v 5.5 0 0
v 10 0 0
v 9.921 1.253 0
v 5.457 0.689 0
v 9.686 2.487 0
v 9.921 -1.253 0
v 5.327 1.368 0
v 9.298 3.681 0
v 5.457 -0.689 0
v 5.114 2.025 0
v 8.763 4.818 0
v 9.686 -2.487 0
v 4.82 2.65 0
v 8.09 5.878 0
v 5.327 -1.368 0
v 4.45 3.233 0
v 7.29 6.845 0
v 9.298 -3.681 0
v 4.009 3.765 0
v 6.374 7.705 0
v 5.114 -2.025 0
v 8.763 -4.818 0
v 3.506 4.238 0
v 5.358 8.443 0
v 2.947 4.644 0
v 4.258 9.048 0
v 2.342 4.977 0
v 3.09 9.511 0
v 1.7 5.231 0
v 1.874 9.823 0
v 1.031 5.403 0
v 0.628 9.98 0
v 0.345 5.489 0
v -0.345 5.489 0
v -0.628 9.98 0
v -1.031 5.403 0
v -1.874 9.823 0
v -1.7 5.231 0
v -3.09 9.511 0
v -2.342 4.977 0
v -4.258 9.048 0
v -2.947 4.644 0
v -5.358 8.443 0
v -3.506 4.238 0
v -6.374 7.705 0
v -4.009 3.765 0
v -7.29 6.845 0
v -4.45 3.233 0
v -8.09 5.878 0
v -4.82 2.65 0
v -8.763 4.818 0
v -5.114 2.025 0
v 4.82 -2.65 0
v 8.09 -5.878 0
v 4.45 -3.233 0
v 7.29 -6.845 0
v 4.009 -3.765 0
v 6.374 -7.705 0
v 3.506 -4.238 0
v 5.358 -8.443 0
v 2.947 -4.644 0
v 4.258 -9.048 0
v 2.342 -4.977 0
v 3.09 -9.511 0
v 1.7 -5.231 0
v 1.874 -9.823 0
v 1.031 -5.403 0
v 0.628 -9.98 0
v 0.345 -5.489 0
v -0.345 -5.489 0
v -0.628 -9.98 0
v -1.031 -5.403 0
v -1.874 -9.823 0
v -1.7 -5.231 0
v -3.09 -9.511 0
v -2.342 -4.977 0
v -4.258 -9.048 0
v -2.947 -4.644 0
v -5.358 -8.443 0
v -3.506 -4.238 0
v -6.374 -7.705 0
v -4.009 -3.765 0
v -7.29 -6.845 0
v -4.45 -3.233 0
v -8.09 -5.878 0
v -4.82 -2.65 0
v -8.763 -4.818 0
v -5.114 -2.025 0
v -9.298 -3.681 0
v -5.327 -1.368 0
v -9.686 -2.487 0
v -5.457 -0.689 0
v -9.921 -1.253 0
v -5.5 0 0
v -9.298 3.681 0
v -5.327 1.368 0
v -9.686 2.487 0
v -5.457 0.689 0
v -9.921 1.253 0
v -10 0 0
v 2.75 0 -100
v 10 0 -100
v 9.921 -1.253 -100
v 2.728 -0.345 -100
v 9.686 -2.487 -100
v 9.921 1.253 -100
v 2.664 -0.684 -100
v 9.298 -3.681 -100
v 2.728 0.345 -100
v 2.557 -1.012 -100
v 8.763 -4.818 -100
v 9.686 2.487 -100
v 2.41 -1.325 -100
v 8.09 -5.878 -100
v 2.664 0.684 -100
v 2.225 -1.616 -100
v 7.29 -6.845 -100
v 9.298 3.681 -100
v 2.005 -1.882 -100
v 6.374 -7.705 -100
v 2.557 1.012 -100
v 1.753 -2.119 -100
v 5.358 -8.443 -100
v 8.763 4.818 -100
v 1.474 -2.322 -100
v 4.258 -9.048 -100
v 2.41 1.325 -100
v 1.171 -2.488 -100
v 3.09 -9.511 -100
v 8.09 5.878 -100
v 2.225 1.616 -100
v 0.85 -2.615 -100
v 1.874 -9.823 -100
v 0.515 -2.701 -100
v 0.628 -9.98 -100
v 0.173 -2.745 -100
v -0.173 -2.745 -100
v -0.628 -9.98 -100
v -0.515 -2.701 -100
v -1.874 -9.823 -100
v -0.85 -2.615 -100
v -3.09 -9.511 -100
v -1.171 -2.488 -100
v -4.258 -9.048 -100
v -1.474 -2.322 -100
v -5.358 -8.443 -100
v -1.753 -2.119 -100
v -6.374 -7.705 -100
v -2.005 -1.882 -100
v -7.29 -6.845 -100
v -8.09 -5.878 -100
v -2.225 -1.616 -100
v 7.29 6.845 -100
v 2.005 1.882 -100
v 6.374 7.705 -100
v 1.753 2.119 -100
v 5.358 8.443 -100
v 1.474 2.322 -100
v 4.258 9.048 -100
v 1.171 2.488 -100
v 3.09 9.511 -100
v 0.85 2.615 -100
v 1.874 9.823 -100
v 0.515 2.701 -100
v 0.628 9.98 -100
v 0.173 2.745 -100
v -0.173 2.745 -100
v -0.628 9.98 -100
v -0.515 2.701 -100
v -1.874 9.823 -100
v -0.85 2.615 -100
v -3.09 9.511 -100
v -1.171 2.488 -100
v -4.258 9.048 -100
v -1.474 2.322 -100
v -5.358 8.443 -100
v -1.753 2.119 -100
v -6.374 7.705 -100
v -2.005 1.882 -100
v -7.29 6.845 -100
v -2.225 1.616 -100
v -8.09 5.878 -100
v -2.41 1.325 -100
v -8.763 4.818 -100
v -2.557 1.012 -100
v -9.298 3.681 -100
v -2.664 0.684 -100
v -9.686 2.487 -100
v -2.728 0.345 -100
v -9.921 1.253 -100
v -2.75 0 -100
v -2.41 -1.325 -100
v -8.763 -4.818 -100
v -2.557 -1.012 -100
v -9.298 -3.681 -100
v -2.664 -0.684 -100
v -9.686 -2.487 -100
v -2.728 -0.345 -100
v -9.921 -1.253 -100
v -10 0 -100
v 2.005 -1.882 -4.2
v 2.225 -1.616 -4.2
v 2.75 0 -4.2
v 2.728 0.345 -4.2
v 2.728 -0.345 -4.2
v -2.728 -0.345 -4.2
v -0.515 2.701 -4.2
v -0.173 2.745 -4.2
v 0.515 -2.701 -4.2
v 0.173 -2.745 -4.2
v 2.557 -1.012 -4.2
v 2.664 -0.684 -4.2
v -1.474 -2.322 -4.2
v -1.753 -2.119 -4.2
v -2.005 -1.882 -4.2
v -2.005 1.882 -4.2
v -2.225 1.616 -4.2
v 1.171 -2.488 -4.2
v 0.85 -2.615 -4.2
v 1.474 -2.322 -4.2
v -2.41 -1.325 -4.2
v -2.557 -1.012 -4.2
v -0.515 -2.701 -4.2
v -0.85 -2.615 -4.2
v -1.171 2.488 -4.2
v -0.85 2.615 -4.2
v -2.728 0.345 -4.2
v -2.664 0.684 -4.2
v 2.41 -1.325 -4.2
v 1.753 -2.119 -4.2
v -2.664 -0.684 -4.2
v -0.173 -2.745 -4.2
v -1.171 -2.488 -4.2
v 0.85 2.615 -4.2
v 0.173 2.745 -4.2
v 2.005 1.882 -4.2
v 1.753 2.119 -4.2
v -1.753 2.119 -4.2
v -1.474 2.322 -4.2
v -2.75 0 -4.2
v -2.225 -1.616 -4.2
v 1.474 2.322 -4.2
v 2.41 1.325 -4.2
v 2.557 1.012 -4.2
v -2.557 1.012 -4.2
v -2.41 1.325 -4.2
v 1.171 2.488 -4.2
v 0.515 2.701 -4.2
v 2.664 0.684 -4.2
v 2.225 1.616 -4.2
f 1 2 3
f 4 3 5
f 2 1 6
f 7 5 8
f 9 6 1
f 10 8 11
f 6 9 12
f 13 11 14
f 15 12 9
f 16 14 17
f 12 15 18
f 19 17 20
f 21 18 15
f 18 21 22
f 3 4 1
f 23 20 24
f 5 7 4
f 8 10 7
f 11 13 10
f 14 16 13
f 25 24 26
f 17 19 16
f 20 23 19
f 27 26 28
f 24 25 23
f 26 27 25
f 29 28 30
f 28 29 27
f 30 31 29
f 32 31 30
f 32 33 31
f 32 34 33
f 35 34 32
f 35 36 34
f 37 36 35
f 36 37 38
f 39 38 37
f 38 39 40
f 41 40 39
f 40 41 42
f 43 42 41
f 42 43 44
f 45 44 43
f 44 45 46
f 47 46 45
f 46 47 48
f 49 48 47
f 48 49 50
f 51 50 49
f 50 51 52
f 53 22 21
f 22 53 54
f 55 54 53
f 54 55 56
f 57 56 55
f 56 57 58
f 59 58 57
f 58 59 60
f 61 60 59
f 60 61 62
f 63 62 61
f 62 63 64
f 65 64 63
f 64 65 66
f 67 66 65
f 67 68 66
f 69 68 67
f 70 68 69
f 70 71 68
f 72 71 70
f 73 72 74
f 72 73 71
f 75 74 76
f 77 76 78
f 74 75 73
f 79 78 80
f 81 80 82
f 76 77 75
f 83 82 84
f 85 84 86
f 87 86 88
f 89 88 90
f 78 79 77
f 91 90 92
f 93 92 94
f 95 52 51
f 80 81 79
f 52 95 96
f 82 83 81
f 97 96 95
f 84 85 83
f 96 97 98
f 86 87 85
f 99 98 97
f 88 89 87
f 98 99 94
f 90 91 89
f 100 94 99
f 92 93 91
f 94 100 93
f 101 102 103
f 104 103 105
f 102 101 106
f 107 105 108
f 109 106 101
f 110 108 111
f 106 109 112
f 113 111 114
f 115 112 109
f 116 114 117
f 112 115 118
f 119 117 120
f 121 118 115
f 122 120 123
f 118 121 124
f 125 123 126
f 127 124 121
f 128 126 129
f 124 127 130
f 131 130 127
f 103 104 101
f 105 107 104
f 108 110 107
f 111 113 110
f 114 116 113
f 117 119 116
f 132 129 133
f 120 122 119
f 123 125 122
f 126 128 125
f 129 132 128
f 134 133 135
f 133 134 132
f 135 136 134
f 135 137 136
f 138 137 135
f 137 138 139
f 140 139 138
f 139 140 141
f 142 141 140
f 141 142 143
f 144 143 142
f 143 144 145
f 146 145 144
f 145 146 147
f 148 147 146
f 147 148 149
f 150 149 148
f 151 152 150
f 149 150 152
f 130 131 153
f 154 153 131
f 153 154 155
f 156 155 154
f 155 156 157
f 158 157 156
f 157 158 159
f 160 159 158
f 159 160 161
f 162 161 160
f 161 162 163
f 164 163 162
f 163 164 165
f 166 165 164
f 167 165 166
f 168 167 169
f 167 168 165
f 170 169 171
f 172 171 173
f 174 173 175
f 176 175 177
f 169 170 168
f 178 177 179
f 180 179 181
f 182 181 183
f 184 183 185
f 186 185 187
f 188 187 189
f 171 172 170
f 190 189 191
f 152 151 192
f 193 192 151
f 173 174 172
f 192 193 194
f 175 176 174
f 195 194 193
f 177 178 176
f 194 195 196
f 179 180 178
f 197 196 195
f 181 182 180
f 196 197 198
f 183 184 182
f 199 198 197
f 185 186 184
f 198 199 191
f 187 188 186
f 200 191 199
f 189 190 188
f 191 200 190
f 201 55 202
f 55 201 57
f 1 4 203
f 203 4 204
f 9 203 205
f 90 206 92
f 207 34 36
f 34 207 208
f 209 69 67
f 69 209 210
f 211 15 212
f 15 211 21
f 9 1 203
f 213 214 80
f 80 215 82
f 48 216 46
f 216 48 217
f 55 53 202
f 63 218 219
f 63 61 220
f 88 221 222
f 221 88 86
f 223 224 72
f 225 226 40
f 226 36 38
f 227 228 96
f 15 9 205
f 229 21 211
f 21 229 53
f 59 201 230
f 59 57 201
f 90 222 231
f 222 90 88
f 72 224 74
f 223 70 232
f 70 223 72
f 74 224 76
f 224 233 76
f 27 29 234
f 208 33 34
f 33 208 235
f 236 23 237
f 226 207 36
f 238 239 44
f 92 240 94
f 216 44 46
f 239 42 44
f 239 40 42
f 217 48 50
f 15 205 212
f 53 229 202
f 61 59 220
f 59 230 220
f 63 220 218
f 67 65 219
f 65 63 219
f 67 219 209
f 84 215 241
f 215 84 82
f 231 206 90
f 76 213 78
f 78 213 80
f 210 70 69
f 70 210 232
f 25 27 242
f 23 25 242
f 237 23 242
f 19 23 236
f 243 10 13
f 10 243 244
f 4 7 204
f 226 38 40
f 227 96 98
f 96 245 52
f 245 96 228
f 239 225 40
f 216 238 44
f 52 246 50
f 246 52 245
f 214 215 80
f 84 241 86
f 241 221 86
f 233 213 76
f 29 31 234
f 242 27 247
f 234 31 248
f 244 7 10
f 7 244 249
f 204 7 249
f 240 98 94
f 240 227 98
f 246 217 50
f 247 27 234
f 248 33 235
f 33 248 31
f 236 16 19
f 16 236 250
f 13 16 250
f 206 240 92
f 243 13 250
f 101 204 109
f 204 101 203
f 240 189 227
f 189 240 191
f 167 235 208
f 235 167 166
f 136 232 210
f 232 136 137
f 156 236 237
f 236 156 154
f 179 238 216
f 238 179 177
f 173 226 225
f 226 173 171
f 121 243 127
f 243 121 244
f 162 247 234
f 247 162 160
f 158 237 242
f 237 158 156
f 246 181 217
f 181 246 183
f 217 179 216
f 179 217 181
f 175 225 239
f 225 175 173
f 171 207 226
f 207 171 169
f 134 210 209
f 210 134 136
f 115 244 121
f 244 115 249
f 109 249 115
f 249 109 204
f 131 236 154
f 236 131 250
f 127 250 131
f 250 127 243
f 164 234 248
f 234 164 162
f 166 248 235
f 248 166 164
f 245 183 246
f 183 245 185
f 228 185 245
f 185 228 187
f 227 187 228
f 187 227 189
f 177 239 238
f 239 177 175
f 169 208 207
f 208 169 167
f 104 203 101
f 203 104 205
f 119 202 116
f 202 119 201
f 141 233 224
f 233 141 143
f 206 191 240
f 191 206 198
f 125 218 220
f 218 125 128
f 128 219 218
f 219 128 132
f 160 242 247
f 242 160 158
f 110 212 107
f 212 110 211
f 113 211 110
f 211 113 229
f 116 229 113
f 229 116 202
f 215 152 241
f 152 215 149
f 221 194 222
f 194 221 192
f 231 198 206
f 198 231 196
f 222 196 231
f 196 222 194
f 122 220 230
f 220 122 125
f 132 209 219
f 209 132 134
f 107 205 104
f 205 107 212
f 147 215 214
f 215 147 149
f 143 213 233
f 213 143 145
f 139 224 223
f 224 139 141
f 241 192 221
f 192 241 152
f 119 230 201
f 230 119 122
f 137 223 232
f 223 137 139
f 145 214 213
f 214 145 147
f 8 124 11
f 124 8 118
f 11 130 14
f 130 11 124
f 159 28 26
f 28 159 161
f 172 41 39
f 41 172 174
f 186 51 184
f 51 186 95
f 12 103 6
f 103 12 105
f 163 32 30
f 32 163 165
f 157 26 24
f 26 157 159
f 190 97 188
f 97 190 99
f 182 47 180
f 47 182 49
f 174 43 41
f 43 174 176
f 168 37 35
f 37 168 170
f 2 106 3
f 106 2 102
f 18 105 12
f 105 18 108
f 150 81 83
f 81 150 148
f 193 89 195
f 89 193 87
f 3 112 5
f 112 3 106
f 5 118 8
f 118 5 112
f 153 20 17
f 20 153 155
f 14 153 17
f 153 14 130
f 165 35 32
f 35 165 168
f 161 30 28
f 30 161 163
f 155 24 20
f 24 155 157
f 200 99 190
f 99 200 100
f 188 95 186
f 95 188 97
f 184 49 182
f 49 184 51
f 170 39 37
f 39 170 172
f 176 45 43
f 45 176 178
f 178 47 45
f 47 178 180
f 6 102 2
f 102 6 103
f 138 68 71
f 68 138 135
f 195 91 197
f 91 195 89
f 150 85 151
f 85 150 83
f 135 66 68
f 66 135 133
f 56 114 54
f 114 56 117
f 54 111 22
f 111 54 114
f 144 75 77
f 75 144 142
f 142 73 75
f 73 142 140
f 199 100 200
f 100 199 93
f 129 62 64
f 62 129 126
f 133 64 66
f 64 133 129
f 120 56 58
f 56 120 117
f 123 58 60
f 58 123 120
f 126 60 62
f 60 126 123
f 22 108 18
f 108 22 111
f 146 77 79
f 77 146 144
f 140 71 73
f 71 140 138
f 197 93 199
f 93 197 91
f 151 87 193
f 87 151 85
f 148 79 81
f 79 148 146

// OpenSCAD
$fn = 50;


difference() {
	union() {
		translate(v = [0, 0, -100.0000000000]) {
			cylinder(h = 100, r = 10.0000000000);
		}
		cylinder(h = 0, r = 13.0000000000);
	}
	union() {
		translate(v = [0, 0, 0]) {
			rotate(a = [0, 0, 0]) {
				difference() {
					union() {
						#translate(v = [0, 0, -100.0000000000]) {
							cylinder(h = 100, r = 2.2500000000);
						}
						#translate(v = [0, 0, -4.2000000000]) {
							cylinder(h = 4.2000000000, r1 = 2.7500000000, r2 = 5.5000000000);
						}
						#translate(v = [0, 0, -100.0000000000]) {
							cylinder(h = 100, r = 2.7500000000);
						}
						#translate(v = [0, 0, -100.0000000000]) {
							cylinder(h = 100, r = 2.2500000000);
						}
					}
					union();
				}
			}
		}
	}
}
